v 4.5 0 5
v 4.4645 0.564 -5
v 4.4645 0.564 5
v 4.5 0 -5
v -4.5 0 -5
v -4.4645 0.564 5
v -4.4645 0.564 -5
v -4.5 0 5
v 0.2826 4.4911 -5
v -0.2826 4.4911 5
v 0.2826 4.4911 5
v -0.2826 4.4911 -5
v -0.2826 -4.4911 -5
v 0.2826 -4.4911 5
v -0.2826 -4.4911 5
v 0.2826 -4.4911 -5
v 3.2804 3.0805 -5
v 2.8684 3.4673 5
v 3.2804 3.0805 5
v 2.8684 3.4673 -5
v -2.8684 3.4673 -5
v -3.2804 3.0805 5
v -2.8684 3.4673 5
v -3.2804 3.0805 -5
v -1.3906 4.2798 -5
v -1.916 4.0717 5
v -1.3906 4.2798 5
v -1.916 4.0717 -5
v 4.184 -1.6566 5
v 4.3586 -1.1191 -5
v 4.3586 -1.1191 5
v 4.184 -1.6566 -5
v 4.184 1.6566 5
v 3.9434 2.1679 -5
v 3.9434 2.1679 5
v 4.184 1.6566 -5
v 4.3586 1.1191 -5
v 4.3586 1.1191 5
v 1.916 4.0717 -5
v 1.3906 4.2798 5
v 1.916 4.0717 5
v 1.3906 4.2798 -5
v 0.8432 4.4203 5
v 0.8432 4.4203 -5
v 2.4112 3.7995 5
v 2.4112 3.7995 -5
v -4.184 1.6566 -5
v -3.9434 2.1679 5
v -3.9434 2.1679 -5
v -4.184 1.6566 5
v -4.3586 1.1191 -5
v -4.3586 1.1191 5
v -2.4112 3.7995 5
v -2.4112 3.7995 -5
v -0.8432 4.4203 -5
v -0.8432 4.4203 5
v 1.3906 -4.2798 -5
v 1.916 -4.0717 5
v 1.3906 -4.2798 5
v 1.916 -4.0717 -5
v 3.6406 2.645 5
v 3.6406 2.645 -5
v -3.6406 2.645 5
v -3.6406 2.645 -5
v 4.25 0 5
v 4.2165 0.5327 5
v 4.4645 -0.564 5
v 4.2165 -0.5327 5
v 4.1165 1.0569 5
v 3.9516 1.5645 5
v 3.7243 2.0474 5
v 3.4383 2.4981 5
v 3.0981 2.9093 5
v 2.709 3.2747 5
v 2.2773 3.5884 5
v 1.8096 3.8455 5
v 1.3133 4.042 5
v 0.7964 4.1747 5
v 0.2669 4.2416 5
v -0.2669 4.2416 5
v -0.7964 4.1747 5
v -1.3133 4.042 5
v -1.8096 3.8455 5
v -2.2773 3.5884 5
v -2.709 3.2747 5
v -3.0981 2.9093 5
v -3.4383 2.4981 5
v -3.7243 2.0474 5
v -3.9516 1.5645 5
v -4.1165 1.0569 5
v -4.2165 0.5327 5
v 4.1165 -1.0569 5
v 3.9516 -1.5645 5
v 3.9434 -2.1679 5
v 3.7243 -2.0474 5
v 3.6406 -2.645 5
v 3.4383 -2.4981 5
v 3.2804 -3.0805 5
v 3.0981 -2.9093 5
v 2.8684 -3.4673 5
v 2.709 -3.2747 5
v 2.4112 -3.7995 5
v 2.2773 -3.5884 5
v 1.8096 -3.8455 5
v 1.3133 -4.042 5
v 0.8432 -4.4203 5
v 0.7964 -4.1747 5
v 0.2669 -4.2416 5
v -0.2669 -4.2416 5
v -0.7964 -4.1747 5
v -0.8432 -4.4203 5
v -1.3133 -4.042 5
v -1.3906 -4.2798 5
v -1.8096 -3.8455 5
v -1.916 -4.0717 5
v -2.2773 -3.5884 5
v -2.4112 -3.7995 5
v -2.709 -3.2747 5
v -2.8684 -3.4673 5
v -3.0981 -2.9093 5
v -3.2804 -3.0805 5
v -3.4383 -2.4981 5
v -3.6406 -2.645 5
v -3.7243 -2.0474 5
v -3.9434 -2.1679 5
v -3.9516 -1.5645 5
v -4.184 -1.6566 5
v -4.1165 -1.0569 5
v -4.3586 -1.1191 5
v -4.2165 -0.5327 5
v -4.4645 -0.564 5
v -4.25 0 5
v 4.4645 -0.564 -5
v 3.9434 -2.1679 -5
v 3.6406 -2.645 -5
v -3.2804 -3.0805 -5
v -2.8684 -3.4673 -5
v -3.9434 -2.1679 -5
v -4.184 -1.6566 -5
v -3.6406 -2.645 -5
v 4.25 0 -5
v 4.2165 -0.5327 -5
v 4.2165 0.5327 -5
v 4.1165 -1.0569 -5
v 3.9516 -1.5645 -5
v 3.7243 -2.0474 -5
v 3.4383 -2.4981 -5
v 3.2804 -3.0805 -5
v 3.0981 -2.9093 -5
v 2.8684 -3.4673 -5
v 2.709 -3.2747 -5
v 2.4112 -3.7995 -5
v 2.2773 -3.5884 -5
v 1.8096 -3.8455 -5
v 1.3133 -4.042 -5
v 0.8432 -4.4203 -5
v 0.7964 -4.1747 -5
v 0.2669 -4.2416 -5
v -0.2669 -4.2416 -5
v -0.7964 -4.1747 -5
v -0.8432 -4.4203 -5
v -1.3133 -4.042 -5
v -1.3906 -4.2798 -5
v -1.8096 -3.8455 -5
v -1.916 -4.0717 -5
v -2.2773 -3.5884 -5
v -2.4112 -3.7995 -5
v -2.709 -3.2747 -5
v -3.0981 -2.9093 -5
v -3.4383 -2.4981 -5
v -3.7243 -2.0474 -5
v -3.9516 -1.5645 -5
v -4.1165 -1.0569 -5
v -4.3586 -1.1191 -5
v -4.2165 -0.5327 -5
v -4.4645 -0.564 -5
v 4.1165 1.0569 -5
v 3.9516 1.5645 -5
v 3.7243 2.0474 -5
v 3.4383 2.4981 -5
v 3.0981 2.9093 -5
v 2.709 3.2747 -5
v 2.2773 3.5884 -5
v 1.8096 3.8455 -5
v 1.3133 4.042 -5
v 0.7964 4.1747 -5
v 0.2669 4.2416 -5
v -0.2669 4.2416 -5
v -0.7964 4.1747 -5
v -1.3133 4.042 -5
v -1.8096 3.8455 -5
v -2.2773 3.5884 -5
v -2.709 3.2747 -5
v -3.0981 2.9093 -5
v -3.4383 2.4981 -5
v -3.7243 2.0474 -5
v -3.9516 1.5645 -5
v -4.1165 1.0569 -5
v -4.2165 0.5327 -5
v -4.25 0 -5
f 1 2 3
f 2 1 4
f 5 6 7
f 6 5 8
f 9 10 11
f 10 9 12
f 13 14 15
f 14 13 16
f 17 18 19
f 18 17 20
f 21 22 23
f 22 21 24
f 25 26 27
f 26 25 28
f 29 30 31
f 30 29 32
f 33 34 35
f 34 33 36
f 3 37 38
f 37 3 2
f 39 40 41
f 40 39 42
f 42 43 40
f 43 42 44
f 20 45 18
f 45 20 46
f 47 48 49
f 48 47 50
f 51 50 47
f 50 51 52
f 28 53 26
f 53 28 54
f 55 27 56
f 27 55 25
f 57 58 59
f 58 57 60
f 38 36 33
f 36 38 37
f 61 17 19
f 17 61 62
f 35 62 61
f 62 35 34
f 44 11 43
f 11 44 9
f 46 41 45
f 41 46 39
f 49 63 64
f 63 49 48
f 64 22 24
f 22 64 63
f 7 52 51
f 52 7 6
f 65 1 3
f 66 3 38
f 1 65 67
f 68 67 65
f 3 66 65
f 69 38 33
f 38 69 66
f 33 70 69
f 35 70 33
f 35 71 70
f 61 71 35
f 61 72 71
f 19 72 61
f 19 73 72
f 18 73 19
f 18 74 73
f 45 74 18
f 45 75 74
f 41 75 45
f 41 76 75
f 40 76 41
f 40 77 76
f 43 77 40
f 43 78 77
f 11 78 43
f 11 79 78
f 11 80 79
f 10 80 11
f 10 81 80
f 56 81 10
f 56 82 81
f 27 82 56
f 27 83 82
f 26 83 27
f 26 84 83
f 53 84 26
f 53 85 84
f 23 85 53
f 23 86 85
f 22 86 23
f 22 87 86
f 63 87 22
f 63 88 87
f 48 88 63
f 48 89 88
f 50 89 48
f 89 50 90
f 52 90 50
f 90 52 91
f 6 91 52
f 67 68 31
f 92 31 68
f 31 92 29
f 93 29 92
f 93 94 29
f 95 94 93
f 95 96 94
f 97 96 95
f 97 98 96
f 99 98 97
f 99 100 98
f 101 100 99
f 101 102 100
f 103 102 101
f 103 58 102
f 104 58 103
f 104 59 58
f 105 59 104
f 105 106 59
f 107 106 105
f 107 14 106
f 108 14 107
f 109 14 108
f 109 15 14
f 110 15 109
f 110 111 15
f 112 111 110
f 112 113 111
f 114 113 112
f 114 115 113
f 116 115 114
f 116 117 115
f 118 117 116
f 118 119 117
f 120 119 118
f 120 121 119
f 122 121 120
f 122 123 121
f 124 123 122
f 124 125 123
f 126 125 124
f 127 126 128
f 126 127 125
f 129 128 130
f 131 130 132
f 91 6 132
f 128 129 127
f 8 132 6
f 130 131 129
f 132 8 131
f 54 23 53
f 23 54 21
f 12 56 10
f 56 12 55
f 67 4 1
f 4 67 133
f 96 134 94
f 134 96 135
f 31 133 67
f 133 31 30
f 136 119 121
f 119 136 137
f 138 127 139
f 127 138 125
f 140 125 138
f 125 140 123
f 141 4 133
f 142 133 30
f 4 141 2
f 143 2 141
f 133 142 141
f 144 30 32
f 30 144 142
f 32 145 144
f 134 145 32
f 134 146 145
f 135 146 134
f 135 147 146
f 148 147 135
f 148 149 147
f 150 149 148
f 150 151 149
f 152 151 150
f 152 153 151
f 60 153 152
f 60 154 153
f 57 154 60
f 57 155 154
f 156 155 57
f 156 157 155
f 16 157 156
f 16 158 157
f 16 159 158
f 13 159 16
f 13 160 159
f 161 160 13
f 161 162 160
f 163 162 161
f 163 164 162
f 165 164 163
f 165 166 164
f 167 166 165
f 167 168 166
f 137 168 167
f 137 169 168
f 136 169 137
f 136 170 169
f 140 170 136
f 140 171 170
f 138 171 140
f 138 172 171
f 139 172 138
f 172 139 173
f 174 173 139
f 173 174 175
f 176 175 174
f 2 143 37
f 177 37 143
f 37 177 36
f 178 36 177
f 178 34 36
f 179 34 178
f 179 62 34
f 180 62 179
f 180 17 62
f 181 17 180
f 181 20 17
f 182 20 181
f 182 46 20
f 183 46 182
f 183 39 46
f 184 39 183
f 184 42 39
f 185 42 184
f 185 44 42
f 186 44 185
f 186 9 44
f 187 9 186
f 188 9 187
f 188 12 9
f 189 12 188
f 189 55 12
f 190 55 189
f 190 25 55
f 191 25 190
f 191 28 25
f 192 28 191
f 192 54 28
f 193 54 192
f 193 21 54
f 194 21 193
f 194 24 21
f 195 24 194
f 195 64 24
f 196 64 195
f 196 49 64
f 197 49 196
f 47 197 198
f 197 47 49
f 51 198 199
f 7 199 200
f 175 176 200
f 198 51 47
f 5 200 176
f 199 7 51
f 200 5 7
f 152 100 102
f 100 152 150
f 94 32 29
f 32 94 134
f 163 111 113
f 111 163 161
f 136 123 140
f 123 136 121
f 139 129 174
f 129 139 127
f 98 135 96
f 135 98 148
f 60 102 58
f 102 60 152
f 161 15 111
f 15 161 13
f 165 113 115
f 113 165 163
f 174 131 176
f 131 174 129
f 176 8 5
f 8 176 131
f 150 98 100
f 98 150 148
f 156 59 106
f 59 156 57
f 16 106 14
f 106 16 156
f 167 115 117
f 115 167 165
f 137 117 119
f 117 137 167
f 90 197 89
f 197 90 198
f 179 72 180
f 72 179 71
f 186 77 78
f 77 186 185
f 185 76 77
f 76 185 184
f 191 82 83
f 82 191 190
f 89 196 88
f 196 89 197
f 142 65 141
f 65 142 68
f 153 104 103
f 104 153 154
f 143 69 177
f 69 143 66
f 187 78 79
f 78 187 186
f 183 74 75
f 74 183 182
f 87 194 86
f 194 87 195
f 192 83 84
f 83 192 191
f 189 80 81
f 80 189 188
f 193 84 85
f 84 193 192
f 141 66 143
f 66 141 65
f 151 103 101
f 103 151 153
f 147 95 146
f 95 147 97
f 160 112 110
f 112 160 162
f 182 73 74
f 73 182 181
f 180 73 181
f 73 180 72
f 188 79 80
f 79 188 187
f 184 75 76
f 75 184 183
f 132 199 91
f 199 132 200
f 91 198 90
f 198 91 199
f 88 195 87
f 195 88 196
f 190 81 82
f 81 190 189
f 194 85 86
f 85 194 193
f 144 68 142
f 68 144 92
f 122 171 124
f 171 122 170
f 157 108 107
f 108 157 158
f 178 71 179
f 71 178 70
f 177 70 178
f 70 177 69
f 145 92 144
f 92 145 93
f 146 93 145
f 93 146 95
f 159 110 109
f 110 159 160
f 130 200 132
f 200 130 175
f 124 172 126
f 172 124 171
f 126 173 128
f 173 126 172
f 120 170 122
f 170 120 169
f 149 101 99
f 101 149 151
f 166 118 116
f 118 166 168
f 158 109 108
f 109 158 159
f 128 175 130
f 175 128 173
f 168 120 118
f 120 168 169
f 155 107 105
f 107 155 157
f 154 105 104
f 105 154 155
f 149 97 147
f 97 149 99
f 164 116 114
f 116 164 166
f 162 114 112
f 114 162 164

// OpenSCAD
$fn = 50;


difference() {
	union() {
		translate(v = [0, 0, -5.0000000000]) {
			cylinder(h = 10, r = 4.5000000000);
		}
	}
	union() {
		translate(v = [0, 0, -100.0000000000]) {
			cylinder(h = 200, r = 4.2500000000);
		}
	}
}
